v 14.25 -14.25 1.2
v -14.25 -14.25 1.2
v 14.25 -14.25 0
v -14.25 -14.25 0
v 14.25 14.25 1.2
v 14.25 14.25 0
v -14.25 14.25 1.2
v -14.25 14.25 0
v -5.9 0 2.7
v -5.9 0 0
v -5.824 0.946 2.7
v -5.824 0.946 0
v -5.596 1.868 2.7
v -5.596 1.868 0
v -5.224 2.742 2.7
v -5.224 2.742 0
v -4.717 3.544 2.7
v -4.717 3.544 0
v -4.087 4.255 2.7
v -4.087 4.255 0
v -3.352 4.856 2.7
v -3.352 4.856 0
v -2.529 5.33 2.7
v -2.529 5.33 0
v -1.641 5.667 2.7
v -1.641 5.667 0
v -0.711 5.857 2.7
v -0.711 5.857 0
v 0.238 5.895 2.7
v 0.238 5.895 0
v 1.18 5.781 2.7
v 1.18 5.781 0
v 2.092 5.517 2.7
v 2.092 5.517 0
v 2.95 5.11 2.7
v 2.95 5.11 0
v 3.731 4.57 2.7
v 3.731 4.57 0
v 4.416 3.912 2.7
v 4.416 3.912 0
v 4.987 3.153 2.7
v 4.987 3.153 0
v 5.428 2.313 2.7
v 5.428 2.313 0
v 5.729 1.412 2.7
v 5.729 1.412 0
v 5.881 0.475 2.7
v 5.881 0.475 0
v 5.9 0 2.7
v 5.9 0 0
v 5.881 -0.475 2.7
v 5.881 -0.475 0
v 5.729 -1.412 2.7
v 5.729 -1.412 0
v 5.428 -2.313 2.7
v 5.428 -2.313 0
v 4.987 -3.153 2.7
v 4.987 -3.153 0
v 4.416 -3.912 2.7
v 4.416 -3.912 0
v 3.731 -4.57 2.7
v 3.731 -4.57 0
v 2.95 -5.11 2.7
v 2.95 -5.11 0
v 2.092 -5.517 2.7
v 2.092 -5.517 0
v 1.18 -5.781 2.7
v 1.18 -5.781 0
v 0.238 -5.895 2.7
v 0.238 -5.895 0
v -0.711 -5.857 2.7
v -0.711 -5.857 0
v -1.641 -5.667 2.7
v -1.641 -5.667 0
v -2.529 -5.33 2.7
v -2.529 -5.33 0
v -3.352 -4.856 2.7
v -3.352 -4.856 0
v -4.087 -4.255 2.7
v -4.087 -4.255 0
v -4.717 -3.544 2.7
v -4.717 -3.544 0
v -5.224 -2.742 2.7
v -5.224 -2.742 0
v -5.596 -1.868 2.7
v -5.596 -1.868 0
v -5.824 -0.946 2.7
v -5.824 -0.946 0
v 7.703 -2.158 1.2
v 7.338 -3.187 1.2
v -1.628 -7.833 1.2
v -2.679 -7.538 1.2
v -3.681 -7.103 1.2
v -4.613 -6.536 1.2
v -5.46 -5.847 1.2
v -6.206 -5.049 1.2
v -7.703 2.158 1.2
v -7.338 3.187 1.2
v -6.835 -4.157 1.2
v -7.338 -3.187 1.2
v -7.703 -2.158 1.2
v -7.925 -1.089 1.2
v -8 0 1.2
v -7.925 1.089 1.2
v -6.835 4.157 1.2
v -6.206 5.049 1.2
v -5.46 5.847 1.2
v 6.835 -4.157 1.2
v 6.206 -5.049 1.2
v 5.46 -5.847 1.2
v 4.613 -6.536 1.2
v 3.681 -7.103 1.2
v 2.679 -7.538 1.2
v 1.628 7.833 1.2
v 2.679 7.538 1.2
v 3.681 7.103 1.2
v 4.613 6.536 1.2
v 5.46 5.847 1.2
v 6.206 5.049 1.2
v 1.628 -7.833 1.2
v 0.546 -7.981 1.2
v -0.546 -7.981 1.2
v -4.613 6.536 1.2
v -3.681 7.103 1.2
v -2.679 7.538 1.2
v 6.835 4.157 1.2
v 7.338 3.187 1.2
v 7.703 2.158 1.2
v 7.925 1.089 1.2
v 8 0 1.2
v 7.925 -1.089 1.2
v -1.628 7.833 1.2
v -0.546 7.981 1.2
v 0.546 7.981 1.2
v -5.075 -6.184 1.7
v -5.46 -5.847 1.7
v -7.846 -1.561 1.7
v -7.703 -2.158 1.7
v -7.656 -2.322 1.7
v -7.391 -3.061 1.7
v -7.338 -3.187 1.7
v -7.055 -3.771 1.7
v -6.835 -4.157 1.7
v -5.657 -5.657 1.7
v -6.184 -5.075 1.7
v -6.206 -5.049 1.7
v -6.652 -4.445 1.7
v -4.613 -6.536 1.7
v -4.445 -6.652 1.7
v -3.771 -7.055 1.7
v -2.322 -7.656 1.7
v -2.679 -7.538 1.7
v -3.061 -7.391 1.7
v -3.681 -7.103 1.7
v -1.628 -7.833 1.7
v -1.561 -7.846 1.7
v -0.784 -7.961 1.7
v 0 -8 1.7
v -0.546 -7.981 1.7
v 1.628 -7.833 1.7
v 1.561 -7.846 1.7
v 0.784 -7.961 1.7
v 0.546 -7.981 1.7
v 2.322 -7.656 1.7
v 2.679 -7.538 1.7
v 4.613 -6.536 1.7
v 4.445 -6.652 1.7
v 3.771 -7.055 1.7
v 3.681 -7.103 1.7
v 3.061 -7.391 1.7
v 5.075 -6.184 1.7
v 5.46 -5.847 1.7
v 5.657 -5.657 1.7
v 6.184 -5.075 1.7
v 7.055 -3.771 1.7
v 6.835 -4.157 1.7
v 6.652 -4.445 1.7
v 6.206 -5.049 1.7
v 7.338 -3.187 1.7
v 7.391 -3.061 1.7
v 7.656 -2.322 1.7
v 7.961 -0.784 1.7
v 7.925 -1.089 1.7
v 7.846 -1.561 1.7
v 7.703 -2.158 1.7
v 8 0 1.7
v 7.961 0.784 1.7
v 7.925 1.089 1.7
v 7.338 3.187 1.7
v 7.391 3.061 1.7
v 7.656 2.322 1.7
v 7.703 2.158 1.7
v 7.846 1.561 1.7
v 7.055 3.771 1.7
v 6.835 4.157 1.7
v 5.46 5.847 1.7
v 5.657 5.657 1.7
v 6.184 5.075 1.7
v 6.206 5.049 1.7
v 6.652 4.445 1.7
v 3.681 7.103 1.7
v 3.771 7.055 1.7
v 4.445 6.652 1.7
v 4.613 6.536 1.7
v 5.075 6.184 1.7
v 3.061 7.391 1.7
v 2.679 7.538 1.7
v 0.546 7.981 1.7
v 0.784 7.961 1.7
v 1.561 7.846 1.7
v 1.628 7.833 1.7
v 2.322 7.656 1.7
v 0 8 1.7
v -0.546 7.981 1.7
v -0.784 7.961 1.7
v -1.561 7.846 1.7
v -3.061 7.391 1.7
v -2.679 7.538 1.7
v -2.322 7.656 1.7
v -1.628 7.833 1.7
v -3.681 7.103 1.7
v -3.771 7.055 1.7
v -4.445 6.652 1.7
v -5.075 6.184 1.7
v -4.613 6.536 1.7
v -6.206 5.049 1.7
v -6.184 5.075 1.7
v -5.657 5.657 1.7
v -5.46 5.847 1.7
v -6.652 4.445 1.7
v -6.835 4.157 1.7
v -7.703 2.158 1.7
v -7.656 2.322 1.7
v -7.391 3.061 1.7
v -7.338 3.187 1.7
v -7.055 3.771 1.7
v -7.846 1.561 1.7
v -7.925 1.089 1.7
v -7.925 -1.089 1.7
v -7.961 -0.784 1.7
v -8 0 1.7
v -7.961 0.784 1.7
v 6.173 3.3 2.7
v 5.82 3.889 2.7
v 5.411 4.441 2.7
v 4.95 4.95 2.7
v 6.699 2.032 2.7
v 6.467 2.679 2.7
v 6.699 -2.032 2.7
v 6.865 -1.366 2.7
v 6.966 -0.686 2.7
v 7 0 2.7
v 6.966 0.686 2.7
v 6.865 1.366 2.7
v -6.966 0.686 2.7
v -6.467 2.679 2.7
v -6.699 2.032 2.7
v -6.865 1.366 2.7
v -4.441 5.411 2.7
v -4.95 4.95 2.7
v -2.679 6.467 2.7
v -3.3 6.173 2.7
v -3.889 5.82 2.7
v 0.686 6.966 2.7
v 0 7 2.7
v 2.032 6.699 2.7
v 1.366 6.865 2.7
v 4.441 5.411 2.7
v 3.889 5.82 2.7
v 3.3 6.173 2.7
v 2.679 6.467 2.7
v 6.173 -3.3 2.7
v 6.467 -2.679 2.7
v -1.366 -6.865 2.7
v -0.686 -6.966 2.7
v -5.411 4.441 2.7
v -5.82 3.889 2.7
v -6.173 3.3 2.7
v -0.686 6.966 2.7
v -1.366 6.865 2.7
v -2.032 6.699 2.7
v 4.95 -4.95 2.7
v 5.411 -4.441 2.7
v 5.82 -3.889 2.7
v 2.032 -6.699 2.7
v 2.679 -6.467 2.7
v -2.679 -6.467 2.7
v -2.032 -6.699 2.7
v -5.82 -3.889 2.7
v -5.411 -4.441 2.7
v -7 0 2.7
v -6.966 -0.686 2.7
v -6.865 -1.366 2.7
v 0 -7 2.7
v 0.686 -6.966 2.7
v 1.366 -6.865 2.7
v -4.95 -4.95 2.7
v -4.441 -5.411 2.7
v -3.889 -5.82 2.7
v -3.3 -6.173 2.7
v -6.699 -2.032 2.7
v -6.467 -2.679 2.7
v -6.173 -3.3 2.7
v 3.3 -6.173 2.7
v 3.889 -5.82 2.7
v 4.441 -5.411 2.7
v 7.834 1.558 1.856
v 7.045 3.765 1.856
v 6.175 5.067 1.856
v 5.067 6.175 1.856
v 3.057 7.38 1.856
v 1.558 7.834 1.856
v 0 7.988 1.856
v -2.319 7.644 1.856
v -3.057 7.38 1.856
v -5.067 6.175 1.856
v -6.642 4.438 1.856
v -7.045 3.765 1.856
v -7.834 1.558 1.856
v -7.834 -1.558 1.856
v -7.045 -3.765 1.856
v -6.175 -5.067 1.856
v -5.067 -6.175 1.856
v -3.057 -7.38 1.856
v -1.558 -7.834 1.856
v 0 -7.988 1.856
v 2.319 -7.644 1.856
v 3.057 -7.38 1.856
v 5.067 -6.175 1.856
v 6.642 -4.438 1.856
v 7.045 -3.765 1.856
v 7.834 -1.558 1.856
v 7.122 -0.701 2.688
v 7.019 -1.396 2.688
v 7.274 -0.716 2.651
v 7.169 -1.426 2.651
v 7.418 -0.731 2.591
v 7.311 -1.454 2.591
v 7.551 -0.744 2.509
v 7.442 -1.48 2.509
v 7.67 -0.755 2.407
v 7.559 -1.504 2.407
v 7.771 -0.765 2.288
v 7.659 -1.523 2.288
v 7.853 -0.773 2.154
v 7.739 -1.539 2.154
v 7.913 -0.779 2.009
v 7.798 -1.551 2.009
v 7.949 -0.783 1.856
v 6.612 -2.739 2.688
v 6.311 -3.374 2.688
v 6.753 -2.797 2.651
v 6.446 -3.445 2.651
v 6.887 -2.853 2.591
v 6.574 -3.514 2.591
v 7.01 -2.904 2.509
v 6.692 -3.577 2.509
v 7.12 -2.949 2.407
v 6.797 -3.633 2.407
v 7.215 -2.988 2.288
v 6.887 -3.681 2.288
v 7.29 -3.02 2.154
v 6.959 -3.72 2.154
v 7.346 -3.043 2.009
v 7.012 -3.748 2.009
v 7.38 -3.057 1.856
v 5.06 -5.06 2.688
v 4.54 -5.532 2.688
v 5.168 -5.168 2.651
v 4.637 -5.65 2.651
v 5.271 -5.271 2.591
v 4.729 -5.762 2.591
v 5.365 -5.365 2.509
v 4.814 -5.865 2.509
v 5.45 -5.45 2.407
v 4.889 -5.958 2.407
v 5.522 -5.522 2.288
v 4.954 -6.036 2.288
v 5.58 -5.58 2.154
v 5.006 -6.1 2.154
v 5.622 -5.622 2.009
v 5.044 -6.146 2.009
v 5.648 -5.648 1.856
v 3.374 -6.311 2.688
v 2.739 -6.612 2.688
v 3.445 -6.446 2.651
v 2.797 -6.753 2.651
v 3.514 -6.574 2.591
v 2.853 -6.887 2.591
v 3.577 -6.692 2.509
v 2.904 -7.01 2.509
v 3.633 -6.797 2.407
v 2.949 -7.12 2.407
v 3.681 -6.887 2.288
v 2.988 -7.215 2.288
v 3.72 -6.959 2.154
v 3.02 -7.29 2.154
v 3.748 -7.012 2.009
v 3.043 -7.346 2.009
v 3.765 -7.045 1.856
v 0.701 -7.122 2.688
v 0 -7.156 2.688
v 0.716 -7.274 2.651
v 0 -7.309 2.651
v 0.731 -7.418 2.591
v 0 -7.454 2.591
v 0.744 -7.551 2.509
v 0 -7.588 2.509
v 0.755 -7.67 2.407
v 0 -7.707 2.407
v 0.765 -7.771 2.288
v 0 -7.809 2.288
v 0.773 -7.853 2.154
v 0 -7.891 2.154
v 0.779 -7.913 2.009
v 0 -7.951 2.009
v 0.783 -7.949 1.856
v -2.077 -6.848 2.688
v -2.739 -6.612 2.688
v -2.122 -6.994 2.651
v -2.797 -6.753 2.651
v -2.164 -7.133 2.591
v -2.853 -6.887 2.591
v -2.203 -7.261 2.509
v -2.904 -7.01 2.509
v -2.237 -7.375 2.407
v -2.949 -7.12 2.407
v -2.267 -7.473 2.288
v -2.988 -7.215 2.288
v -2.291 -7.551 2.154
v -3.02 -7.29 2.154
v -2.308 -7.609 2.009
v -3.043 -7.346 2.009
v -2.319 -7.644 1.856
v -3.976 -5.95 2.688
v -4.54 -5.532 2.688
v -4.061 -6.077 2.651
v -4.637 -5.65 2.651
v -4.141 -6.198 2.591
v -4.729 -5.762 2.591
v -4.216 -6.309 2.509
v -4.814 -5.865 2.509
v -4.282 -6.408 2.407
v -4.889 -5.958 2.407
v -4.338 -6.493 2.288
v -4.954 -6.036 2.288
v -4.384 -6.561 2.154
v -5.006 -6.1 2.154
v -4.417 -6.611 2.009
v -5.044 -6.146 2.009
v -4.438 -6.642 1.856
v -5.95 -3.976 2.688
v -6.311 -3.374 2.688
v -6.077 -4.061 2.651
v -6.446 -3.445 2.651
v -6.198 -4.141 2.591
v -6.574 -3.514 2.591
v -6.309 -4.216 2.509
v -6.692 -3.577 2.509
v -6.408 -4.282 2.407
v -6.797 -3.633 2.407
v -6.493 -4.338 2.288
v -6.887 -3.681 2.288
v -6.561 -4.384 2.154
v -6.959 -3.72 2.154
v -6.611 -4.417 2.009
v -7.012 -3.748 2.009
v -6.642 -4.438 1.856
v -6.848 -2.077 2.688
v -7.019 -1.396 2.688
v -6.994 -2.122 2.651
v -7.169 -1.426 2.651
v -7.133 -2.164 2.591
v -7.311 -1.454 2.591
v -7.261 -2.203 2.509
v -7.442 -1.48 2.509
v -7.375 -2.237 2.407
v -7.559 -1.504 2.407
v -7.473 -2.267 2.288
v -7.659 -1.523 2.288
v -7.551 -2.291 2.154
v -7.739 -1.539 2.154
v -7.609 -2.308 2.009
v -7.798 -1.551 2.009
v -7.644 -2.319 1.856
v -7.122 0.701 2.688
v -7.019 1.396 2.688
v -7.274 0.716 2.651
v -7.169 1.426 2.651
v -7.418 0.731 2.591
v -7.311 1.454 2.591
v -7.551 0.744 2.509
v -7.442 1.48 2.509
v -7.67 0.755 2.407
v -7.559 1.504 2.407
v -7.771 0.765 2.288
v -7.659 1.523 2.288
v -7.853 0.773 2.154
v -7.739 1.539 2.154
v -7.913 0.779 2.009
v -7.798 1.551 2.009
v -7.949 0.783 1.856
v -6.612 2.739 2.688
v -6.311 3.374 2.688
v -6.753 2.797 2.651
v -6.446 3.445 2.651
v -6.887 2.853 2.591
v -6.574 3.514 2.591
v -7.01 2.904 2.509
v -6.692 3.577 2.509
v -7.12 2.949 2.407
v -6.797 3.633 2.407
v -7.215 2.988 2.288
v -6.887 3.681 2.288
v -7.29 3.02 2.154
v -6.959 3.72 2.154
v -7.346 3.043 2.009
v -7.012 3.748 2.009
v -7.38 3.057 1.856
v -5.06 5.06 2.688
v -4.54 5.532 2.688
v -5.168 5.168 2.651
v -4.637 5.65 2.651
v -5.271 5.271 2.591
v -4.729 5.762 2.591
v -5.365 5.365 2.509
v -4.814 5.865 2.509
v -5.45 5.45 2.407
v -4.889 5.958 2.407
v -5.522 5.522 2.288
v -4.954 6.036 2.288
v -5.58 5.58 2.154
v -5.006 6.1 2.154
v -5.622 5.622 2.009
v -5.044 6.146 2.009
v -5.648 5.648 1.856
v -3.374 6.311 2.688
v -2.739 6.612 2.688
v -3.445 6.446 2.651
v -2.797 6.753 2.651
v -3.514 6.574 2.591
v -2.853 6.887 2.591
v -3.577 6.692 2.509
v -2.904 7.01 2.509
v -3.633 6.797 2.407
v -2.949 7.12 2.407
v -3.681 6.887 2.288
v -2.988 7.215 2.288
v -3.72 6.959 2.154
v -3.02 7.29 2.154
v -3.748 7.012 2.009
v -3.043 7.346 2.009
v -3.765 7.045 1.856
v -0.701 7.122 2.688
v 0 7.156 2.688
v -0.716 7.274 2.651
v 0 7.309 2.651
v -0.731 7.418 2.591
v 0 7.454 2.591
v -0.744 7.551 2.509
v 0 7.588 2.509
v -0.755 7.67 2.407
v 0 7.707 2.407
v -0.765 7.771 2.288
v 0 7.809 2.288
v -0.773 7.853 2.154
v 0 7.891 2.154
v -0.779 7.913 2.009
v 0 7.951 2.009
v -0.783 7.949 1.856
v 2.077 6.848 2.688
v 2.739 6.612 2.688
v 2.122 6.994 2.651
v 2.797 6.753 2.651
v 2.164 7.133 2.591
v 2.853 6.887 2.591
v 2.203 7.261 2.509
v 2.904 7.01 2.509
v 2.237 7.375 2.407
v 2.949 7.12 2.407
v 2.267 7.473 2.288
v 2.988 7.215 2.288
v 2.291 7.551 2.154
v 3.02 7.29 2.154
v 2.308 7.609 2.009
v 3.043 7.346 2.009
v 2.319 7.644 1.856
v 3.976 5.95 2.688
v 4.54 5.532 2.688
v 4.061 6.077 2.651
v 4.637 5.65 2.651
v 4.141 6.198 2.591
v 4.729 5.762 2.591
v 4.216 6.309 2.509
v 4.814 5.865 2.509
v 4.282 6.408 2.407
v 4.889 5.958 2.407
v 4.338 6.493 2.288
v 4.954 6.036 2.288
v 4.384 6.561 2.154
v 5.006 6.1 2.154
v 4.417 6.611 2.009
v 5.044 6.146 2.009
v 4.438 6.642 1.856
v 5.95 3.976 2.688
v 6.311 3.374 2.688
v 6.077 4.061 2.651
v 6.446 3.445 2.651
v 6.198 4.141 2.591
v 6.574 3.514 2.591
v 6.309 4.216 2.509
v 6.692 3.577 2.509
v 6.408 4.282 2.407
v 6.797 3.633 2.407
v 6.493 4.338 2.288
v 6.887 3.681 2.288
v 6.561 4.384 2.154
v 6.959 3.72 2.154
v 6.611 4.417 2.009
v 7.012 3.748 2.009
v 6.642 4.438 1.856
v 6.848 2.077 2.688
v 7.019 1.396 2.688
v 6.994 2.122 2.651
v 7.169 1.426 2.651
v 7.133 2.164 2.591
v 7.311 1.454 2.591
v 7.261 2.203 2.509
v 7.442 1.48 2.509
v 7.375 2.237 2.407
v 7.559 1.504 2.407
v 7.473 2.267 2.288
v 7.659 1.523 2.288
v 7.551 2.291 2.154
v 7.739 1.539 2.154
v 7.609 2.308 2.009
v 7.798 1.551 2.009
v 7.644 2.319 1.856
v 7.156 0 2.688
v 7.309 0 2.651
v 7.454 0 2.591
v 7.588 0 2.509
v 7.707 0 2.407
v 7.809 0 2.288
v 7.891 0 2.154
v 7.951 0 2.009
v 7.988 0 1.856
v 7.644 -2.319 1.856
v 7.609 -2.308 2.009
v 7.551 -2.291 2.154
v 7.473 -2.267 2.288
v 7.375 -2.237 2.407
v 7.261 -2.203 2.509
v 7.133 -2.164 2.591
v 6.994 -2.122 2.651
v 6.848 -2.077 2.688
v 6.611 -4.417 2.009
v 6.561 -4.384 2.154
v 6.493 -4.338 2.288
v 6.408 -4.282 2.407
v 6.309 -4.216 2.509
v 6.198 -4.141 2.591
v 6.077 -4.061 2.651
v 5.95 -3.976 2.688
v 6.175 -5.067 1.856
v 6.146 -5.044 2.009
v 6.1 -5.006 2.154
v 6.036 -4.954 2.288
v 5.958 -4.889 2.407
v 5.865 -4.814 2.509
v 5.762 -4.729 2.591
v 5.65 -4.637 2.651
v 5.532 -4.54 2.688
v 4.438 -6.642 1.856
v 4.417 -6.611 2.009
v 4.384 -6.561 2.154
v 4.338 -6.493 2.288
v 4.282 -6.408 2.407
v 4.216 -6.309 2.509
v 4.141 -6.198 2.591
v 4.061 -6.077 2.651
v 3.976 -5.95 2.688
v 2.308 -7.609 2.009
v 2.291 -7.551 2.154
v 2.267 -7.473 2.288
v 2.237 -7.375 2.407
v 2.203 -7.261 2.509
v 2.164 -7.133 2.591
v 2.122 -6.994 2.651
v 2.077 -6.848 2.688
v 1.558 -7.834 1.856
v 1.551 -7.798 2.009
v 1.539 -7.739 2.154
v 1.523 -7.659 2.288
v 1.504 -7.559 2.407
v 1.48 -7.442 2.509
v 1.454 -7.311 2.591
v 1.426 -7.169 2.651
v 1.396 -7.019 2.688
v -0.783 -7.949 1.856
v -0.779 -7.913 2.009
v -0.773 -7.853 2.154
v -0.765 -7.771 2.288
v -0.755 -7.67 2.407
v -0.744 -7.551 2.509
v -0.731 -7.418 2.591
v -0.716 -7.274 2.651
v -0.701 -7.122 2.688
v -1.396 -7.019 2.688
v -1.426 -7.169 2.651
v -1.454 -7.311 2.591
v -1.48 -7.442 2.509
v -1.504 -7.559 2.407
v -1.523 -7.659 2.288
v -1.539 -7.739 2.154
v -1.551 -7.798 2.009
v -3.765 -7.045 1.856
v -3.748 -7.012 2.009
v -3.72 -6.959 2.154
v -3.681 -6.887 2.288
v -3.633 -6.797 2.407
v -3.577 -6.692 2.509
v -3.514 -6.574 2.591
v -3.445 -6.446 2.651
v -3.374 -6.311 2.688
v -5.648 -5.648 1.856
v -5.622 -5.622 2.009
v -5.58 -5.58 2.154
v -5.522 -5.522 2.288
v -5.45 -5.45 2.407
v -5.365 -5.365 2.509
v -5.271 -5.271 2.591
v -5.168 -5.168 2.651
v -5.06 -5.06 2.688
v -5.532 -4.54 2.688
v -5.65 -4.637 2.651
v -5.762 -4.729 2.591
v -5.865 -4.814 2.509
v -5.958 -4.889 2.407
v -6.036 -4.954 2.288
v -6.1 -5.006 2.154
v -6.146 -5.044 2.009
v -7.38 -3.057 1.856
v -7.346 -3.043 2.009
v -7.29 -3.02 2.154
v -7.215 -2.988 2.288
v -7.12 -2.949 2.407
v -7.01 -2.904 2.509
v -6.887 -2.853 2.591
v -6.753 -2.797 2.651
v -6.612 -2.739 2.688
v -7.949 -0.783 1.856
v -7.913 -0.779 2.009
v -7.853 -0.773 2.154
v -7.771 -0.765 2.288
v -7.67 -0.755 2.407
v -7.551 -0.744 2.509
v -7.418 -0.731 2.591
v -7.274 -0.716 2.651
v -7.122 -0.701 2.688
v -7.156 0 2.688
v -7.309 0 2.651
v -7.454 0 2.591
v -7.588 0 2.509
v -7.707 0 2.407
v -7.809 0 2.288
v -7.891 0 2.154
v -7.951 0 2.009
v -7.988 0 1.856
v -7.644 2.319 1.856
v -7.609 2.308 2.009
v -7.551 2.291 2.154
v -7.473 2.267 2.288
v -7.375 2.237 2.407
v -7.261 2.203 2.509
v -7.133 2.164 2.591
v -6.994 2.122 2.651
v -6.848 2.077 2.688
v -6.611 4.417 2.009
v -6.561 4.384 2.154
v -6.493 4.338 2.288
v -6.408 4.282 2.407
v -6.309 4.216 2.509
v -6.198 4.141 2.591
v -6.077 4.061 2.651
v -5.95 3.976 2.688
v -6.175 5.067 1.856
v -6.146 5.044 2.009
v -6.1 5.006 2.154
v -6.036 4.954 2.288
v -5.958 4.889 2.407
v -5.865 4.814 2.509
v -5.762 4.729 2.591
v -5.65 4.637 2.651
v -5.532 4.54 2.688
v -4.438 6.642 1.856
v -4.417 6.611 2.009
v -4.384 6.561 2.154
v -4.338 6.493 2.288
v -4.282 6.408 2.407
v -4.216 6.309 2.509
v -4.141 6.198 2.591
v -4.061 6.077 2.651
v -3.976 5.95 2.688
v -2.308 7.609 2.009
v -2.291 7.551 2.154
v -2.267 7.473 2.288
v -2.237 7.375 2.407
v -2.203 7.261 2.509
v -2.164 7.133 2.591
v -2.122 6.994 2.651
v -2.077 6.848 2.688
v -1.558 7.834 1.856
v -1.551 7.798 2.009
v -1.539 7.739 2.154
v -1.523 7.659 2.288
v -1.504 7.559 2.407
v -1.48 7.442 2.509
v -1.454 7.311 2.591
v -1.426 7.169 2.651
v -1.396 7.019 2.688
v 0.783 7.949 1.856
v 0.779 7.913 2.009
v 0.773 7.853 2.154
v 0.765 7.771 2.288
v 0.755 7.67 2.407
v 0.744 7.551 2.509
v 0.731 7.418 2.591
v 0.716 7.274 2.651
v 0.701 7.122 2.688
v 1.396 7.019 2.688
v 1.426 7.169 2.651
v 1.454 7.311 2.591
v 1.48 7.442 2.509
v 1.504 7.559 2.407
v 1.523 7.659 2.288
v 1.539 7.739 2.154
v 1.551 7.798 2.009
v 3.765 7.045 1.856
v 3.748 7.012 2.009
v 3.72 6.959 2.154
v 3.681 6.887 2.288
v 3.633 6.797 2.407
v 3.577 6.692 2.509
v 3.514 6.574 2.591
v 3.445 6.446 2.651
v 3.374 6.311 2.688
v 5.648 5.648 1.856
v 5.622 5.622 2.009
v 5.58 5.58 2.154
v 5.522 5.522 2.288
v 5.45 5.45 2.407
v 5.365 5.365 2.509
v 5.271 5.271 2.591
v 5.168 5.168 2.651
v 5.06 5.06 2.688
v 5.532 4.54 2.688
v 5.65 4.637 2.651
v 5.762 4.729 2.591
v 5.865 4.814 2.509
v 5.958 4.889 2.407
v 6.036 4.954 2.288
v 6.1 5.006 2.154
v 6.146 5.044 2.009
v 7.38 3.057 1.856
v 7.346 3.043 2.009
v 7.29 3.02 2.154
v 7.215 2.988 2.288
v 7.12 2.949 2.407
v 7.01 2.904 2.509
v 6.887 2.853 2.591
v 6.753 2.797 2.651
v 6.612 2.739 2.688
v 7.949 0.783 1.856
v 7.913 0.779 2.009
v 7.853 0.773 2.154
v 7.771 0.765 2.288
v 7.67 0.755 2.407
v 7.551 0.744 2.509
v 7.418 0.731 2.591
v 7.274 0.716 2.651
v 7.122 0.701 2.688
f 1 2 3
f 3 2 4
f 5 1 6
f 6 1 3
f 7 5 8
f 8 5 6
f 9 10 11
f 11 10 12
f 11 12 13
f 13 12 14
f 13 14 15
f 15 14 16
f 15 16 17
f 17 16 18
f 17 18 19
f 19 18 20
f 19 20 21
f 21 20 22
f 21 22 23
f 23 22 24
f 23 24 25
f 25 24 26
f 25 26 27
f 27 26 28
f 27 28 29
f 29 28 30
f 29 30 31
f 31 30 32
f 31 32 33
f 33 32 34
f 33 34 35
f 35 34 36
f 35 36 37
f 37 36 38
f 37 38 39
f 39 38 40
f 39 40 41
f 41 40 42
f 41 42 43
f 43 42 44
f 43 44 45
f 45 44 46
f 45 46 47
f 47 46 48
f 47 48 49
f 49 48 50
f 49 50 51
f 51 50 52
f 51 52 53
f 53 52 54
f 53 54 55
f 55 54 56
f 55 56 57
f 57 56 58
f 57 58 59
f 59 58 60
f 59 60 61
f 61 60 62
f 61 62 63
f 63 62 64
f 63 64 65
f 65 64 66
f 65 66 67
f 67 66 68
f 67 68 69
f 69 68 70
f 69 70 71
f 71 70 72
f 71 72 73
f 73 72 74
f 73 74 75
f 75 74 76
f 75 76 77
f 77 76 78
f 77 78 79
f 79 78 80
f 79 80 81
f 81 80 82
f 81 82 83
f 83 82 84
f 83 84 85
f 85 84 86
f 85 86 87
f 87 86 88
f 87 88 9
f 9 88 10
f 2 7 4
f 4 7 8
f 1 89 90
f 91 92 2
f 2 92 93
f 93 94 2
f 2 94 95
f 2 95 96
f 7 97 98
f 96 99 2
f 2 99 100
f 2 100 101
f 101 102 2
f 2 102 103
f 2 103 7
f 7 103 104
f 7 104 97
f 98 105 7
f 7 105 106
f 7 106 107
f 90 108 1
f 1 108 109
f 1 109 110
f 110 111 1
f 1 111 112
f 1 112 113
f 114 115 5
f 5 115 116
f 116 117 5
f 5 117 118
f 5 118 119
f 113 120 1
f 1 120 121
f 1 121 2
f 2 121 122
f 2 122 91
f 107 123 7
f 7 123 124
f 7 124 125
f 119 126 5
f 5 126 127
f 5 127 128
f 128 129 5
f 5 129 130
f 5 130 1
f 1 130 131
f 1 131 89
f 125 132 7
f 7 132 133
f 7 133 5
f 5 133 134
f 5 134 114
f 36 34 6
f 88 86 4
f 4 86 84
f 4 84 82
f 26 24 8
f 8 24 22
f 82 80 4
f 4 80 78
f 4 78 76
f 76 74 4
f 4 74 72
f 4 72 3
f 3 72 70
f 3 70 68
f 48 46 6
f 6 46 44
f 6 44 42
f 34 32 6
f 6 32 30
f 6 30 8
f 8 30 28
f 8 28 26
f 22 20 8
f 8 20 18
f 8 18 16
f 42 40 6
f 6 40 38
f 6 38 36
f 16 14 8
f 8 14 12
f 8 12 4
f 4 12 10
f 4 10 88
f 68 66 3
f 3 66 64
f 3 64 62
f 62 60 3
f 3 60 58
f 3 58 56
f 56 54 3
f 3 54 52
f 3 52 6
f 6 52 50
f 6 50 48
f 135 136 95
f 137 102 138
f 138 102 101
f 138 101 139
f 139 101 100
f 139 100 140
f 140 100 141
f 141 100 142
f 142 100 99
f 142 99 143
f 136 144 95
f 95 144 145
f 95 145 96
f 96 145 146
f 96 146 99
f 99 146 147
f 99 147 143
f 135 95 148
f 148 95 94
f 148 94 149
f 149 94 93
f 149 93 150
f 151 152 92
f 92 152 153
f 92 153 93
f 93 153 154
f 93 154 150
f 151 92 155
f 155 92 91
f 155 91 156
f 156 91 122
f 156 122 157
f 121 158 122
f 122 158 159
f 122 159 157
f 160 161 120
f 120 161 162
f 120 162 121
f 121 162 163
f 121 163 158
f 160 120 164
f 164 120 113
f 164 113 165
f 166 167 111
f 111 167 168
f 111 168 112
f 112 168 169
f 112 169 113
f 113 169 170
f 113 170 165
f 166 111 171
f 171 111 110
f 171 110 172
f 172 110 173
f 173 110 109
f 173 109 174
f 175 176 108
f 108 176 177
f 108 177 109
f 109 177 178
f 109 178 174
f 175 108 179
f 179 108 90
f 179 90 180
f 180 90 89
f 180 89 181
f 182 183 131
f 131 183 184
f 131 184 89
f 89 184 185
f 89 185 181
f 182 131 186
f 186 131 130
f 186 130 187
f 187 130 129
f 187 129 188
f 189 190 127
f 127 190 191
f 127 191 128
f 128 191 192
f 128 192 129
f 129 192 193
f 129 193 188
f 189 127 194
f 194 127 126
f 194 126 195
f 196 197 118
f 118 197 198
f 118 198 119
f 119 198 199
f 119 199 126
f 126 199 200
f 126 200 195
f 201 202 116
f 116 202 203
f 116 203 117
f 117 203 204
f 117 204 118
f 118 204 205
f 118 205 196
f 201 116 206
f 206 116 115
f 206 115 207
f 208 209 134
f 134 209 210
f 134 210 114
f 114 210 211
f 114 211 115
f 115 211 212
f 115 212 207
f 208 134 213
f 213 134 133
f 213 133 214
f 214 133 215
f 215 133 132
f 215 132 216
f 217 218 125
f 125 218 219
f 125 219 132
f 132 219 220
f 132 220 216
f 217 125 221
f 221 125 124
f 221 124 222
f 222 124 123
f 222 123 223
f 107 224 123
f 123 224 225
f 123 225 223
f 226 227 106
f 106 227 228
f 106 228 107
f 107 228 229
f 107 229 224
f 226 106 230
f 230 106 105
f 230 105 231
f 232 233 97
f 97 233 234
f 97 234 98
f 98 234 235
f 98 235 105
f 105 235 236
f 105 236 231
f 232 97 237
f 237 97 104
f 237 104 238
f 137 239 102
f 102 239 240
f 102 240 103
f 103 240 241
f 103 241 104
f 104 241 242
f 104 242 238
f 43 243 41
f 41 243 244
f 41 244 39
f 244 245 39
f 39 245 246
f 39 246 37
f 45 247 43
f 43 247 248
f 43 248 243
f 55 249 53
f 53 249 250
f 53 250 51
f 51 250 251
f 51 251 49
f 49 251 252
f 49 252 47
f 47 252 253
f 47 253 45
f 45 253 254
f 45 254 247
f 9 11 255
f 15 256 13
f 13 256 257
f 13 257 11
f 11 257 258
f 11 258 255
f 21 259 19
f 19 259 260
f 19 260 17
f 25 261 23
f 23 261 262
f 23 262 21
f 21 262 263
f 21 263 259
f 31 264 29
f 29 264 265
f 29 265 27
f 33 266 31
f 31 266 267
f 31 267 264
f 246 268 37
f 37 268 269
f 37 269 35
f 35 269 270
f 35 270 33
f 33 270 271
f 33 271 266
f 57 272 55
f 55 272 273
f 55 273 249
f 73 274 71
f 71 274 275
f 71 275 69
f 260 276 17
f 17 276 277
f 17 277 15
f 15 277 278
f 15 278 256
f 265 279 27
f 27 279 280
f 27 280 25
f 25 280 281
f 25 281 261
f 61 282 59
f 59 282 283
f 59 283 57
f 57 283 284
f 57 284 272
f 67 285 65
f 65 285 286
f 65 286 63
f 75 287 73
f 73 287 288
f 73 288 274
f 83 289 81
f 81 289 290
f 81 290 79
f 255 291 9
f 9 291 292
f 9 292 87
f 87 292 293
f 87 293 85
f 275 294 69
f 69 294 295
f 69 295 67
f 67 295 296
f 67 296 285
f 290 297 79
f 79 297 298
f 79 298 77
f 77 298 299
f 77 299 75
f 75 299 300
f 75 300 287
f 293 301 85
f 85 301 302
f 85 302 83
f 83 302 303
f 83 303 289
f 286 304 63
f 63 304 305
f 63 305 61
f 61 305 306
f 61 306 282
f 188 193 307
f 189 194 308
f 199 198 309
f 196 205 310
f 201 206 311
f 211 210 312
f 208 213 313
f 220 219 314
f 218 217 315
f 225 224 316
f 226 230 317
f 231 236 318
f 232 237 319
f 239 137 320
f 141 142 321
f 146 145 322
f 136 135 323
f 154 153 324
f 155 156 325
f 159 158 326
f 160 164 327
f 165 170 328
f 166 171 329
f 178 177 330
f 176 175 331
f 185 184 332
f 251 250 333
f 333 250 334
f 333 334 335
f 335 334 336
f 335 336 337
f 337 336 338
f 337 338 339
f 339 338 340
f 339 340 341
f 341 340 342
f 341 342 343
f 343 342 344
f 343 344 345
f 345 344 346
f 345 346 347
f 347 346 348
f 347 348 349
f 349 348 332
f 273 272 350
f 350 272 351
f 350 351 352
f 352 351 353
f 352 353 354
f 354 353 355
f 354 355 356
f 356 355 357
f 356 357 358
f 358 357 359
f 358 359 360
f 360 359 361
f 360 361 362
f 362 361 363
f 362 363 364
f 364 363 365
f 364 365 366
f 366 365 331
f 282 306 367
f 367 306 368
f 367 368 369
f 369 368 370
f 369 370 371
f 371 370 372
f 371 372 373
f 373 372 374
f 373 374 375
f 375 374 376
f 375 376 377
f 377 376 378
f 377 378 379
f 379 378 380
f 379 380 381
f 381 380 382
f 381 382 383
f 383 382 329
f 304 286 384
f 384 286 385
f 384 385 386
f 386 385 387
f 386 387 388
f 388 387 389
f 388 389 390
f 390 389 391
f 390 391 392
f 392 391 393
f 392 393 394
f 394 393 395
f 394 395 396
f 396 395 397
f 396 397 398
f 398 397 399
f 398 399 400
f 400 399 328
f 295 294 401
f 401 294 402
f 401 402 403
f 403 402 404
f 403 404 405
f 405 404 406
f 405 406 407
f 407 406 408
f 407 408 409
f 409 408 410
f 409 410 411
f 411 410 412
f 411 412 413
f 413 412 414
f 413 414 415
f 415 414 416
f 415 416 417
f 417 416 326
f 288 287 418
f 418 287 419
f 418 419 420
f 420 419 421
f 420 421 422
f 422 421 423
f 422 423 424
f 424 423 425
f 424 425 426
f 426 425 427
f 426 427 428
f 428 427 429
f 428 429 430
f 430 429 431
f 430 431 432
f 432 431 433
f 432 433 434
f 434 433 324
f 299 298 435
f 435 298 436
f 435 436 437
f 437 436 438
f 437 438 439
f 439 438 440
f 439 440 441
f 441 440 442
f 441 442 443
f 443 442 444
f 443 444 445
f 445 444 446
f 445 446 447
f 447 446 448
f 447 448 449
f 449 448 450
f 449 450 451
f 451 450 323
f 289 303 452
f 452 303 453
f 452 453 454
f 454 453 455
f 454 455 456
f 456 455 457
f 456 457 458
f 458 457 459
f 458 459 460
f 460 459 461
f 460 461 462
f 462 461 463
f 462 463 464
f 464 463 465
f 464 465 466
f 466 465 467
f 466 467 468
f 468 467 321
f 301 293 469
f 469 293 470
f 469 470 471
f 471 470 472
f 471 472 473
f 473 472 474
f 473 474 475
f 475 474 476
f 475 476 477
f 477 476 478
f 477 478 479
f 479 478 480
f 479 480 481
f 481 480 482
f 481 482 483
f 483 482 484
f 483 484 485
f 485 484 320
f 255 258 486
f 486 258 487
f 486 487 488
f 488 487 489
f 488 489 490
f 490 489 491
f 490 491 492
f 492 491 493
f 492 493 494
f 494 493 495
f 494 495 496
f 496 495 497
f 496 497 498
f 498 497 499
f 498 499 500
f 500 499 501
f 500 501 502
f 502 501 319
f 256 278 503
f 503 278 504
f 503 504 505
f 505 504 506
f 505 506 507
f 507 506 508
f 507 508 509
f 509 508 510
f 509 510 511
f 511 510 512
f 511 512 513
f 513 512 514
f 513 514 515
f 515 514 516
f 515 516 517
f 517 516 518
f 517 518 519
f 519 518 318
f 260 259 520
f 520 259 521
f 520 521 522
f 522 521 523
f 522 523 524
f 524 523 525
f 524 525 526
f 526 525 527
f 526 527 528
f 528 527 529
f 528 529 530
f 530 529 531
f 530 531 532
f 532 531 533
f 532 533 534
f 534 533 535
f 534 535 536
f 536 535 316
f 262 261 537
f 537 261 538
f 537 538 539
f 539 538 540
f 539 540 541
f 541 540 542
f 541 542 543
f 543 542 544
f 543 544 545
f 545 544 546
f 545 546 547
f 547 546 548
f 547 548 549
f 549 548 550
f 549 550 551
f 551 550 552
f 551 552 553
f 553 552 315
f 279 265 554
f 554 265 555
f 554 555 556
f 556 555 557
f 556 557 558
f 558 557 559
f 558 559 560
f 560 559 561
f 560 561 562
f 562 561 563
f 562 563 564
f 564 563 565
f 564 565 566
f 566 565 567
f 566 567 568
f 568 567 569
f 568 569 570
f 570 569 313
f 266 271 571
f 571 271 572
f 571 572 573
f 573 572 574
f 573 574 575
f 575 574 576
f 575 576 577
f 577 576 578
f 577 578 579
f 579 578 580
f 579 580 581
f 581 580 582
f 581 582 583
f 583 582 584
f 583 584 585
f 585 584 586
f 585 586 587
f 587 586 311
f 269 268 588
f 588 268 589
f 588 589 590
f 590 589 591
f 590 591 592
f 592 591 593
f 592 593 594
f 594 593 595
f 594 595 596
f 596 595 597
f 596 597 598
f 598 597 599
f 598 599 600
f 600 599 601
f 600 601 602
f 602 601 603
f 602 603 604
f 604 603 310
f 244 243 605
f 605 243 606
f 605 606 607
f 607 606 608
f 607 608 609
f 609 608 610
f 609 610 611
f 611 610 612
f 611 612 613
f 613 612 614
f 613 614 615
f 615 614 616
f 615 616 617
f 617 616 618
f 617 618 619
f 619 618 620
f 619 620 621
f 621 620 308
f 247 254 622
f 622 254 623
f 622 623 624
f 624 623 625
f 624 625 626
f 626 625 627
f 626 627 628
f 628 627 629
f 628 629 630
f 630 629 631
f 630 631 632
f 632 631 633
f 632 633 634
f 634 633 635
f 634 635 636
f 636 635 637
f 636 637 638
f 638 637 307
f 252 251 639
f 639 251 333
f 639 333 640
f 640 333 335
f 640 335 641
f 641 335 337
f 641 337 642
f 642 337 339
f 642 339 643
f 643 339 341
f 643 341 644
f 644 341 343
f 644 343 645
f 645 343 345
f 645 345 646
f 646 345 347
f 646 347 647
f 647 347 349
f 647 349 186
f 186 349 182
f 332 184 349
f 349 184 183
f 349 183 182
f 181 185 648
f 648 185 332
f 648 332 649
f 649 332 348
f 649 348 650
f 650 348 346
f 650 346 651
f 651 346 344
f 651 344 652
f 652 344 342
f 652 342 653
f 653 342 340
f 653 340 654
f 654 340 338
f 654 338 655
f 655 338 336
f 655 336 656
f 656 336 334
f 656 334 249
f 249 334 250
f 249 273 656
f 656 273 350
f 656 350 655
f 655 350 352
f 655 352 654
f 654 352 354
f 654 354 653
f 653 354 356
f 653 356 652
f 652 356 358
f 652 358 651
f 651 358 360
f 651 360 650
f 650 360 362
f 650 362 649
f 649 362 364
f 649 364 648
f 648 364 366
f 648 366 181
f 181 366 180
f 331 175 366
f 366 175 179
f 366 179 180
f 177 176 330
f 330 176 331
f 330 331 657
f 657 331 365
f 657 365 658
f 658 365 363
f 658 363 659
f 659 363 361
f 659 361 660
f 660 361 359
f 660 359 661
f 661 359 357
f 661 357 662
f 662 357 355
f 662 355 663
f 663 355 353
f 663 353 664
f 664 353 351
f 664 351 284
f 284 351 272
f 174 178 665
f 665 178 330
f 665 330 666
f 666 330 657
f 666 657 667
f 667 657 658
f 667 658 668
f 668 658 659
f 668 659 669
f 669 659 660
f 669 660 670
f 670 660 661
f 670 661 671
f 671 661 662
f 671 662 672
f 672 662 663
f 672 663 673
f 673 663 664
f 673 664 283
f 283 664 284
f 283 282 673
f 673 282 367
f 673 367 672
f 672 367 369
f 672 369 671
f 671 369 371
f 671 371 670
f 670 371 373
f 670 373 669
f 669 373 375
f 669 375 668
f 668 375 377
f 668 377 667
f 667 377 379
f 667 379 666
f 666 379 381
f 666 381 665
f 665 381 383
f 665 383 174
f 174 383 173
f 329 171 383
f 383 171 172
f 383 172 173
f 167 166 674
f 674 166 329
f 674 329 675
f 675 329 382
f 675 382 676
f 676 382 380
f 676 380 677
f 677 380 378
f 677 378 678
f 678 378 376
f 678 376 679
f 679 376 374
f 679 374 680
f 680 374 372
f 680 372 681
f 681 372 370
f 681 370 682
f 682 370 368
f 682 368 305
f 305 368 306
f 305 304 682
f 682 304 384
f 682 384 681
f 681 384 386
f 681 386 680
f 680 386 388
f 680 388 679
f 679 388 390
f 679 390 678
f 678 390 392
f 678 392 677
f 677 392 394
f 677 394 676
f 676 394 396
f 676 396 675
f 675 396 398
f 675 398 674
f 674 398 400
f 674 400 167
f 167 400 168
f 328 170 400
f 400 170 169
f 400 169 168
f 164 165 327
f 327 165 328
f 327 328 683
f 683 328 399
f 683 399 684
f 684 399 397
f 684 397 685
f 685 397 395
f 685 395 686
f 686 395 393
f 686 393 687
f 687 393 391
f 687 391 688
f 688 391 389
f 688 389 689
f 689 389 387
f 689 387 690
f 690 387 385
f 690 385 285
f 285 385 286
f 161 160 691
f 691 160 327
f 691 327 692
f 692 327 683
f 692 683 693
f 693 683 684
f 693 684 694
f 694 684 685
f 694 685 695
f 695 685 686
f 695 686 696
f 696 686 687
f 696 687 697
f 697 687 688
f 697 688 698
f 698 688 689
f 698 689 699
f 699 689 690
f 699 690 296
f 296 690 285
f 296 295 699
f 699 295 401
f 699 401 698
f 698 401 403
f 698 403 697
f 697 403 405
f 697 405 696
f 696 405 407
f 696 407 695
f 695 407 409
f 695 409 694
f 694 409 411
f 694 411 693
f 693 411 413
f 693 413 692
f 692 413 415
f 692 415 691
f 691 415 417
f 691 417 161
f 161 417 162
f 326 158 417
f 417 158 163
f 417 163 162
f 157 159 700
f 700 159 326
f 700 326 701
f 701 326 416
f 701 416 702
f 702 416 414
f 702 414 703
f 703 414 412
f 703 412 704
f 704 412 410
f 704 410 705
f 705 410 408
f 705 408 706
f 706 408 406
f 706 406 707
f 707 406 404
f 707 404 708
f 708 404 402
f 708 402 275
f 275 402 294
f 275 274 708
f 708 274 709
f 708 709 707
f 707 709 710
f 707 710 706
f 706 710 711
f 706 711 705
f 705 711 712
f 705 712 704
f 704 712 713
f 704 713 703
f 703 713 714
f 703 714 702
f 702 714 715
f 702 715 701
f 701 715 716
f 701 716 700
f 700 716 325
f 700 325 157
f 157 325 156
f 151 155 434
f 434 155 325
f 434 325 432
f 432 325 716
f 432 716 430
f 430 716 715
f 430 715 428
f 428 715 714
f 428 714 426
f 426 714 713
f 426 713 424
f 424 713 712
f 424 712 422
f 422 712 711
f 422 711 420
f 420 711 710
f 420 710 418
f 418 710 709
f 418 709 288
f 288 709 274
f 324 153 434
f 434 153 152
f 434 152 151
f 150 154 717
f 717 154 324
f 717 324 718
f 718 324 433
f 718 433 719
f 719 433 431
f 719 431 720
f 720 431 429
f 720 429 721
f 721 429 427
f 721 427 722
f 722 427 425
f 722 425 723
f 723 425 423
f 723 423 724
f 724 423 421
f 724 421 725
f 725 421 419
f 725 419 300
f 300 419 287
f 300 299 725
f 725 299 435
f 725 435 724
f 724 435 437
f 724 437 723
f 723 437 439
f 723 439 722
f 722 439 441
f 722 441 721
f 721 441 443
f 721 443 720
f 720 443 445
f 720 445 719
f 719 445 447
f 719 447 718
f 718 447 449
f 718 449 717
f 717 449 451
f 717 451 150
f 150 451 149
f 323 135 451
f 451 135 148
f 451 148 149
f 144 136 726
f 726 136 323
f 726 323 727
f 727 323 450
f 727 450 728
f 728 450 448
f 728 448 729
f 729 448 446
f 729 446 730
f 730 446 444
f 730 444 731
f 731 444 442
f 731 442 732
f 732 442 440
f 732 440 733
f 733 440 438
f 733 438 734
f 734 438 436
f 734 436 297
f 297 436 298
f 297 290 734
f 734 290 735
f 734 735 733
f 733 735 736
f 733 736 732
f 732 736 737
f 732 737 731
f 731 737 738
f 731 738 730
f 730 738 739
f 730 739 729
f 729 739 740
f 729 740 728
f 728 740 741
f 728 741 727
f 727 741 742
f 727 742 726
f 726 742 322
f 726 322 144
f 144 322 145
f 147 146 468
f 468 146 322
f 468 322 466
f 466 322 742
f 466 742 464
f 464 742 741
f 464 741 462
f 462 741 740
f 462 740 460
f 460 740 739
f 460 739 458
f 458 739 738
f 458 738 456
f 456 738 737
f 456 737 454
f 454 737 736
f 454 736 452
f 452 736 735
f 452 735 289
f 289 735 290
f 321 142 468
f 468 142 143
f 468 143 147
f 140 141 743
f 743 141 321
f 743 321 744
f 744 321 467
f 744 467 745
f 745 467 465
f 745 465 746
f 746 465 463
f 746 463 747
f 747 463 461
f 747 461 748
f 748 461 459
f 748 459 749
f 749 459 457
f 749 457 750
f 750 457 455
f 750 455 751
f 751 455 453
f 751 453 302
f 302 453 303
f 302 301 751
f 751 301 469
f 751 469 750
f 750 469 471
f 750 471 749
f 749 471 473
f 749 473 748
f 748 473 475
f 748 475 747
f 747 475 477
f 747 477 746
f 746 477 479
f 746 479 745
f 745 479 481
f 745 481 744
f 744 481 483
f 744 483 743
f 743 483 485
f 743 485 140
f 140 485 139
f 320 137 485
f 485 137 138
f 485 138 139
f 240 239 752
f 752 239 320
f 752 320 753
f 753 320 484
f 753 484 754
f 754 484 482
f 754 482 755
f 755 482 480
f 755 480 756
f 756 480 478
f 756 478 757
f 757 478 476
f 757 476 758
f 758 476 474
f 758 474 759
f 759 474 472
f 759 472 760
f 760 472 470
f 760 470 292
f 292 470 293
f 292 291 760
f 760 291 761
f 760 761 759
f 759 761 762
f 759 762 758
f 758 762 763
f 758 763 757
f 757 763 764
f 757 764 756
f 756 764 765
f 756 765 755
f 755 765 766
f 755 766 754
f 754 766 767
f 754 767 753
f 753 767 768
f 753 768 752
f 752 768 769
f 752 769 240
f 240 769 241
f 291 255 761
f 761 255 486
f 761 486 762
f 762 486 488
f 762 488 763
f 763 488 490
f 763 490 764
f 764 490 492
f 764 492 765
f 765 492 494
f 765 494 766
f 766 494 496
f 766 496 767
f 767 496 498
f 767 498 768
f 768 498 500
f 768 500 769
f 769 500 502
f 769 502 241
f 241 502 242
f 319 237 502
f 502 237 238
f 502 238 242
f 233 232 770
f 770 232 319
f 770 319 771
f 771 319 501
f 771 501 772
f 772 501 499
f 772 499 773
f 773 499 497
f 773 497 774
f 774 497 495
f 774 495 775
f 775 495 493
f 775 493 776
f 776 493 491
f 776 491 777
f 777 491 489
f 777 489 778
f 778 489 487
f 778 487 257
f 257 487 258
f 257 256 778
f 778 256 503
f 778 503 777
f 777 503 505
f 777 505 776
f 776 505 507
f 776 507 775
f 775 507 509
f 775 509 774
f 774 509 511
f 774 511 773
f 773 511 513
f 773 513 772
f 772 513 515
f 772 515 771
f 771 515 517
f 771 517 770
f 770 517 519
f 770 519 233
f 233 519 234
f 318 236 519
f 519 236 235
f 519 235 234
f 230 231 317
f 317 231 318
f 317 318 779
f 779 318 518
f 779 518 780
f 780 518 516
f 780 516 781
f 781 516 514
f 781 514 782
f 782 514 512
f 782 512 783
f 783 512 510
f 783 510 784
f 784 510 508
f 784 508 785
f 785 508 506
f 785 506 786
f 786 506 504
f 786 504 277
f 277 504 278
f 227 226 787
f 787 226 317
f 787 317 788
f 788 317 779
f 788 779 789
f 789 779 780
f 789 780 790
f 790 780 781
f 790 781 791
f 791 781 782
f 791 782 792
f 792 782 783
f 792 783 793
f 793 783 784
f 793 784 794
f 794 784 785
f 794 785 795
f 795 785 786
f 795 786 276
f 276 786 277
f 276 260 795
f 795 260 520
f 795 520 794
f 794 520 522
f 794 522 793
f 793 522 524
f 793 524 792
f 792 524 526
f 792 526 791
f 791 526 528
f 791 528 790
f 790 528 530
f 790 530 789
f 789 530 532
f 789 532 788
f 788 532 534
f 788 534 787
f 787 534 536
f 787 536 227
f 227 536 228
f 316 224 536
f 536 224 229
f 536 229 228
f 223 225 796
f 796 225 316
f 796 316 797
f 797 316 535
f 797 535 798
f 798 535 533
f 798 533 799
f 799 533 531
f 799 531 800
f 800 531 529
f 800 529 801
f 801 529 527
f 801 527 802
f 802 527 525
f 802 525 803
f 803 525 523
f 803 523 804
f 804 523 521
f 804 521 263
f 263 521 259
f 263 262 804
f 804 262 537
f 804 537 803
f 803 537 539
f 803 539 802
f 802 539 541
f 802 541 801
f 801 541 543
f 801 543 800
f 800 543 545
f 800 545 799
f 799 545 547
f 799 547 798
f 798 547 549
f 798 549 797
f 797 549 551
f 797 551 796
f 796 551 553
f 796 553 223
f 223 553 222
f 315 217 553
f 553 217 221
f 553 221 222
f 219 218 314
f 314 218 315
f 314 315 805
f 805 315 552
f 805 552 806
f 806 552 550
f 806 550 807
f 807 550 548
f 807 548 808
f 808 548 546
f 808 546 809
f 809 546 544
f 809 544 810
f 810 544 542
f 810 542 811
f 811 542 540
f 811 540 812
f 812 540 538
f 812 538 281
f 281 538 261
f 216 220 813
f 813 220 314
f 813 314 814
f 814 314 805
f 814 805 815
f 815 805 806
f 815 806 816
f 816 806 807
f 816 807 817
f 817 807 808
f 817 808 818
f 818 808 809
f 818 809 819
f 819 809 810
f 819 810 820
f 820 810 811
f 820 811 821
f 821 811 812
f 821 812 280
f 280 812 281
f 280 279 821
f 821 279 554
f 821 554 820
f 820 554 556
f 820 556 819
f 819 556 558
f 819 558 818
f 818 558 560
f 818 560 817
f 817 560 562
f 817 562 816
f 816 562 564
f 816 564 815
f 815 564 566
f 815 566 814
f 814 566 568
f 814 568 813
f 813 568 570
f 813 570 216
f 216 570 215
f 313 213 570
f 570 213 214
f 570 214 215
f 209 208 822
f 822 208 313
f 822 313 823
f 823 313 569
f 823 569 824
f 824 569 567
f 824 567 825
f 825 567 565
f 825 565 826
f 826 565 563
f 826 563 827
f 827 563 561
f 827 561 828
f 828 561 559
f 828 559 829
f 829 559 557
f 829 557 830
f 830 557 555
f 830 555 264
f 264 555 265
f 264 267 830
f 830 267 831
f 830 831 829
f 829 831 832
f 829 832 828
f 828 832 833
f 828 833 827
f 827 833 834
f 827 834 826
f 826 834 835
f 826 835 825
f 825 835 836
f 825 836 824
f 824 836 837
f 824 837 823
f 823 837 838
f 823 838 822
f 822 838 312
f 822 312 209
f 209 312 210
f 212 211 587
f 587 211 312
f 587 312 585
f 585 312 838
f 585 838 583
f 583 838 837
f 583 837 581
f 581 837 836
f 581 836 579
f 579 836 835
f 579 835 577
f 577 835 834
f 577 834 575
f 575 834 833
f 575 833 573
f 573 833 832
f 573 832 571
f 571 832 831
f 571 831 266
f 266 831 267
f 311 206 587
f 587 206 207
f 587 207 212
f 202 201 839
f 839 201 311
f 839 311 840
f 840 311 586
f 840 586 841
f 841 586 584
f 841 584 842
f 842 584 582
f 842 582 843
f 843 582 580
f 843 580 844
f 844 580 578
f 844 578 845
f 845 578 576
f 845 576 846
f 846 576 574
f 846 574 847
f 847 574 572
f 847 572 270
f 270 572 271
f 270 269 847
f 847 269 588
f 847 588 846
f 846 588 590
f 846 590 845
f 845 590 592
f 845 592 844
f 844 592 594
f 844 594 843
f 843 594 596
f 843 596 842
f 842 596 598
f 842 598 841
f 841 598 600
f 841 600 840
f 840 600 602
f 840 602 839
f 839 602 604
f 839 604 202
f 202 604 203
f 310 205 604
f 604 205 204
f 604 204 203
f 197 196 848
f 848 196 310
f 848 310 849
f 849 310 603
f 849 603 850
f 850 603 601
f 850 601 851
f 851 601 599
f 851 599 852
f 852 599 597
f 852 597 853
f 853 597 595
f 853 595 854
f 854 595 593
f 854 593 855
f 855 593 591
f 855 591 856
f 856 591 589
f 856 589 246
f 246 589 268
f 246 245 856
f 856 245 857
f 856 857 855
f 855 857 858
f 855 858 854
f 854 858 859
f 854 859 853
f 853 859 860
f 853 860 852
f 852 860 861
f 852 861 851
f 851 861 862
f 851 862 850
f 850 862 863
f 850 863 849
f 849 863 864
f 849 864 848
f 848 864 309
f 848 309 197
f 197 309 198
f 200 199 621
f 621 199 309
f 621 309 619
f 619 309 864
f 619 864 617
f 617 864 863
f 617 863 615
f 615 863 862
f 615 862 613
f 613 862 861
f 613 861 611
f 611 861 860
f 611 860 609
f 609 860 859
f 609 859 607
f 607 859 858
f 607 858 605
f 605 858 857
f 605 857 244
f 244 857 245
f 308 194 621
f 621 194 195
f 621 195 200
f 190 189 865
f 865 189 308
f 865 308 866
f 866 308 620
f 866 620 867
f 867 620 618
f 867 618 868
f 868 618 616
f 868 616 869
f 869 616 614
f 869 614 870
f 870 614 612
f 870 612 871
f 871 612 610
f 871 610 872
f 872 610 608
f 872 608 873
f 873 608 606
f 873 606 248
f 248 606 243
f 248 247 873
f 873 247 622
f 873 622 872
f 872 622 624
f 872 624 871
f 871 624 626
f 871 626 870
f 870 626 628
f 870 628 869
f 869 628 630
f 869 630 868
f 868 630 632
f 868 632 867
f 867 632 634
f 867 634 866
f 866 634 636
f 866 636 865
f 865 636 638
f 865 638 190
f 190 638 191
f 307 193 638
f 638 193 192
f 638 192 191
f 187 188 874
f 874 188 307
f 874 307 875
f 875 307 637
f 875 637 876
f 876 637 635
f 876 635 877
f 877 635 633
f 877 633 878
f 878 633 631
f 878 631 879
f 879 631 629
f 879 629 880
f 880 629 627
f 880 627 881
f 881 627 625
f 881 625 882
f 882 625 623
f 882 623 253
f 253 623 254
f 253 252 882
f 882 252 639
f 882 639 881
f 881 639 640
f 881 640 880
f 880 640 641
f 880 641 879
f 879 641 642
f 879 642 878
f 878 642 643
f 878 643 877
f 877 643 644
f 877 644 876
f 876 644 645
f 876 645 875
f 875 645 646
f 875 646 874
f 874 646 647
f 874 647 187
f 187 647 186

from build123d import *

# Parameters (mm, degrees)
SKETCH1_W           = 28.5
SKETCH1_H           = 28.5
SKETCH1_R           = 5.9
BOSS_EXTRUDE1_DEPTH = 1.2
SKETCH1_3_R         = 8
SKETCH1_3_R_2       = 5.9
BOSS_EXTRUDE2_DEPTH = 2.7
FILLET1_R           = 1


with BuildPart() as part:
    # Sketch1 → Boss-Extrude1 (new body)
    with BuildSketch(Plane.XY):
        Rectangle(SKETCH1_W, SKETCH1_H)
        Circle(SKETCH1_R, mode=Mode.SUBTRACT)
    extrude(amount=BOSS_EXTRUDE1_DEPTH)

    # Sketch1<3> → Boss-Extrude2 (add)
    with BuildSketch(Plane.XY):
        Circle(SKETCH1_3_R)
        Circle(SKETCH1_3_R_2, mode=Mode.SUBTRACT)
    extrude(amount=BOSS_EXTRUDE2_DEPTH)

    # Fillet1
    fillet1_edges = [part.edges().sort_by_distance(p)[0] for p in [
        (-8, 0, 2.7),
    ]]
    fillet(fillet1_edges, radius=FILLET1_R)


solid = part.part
